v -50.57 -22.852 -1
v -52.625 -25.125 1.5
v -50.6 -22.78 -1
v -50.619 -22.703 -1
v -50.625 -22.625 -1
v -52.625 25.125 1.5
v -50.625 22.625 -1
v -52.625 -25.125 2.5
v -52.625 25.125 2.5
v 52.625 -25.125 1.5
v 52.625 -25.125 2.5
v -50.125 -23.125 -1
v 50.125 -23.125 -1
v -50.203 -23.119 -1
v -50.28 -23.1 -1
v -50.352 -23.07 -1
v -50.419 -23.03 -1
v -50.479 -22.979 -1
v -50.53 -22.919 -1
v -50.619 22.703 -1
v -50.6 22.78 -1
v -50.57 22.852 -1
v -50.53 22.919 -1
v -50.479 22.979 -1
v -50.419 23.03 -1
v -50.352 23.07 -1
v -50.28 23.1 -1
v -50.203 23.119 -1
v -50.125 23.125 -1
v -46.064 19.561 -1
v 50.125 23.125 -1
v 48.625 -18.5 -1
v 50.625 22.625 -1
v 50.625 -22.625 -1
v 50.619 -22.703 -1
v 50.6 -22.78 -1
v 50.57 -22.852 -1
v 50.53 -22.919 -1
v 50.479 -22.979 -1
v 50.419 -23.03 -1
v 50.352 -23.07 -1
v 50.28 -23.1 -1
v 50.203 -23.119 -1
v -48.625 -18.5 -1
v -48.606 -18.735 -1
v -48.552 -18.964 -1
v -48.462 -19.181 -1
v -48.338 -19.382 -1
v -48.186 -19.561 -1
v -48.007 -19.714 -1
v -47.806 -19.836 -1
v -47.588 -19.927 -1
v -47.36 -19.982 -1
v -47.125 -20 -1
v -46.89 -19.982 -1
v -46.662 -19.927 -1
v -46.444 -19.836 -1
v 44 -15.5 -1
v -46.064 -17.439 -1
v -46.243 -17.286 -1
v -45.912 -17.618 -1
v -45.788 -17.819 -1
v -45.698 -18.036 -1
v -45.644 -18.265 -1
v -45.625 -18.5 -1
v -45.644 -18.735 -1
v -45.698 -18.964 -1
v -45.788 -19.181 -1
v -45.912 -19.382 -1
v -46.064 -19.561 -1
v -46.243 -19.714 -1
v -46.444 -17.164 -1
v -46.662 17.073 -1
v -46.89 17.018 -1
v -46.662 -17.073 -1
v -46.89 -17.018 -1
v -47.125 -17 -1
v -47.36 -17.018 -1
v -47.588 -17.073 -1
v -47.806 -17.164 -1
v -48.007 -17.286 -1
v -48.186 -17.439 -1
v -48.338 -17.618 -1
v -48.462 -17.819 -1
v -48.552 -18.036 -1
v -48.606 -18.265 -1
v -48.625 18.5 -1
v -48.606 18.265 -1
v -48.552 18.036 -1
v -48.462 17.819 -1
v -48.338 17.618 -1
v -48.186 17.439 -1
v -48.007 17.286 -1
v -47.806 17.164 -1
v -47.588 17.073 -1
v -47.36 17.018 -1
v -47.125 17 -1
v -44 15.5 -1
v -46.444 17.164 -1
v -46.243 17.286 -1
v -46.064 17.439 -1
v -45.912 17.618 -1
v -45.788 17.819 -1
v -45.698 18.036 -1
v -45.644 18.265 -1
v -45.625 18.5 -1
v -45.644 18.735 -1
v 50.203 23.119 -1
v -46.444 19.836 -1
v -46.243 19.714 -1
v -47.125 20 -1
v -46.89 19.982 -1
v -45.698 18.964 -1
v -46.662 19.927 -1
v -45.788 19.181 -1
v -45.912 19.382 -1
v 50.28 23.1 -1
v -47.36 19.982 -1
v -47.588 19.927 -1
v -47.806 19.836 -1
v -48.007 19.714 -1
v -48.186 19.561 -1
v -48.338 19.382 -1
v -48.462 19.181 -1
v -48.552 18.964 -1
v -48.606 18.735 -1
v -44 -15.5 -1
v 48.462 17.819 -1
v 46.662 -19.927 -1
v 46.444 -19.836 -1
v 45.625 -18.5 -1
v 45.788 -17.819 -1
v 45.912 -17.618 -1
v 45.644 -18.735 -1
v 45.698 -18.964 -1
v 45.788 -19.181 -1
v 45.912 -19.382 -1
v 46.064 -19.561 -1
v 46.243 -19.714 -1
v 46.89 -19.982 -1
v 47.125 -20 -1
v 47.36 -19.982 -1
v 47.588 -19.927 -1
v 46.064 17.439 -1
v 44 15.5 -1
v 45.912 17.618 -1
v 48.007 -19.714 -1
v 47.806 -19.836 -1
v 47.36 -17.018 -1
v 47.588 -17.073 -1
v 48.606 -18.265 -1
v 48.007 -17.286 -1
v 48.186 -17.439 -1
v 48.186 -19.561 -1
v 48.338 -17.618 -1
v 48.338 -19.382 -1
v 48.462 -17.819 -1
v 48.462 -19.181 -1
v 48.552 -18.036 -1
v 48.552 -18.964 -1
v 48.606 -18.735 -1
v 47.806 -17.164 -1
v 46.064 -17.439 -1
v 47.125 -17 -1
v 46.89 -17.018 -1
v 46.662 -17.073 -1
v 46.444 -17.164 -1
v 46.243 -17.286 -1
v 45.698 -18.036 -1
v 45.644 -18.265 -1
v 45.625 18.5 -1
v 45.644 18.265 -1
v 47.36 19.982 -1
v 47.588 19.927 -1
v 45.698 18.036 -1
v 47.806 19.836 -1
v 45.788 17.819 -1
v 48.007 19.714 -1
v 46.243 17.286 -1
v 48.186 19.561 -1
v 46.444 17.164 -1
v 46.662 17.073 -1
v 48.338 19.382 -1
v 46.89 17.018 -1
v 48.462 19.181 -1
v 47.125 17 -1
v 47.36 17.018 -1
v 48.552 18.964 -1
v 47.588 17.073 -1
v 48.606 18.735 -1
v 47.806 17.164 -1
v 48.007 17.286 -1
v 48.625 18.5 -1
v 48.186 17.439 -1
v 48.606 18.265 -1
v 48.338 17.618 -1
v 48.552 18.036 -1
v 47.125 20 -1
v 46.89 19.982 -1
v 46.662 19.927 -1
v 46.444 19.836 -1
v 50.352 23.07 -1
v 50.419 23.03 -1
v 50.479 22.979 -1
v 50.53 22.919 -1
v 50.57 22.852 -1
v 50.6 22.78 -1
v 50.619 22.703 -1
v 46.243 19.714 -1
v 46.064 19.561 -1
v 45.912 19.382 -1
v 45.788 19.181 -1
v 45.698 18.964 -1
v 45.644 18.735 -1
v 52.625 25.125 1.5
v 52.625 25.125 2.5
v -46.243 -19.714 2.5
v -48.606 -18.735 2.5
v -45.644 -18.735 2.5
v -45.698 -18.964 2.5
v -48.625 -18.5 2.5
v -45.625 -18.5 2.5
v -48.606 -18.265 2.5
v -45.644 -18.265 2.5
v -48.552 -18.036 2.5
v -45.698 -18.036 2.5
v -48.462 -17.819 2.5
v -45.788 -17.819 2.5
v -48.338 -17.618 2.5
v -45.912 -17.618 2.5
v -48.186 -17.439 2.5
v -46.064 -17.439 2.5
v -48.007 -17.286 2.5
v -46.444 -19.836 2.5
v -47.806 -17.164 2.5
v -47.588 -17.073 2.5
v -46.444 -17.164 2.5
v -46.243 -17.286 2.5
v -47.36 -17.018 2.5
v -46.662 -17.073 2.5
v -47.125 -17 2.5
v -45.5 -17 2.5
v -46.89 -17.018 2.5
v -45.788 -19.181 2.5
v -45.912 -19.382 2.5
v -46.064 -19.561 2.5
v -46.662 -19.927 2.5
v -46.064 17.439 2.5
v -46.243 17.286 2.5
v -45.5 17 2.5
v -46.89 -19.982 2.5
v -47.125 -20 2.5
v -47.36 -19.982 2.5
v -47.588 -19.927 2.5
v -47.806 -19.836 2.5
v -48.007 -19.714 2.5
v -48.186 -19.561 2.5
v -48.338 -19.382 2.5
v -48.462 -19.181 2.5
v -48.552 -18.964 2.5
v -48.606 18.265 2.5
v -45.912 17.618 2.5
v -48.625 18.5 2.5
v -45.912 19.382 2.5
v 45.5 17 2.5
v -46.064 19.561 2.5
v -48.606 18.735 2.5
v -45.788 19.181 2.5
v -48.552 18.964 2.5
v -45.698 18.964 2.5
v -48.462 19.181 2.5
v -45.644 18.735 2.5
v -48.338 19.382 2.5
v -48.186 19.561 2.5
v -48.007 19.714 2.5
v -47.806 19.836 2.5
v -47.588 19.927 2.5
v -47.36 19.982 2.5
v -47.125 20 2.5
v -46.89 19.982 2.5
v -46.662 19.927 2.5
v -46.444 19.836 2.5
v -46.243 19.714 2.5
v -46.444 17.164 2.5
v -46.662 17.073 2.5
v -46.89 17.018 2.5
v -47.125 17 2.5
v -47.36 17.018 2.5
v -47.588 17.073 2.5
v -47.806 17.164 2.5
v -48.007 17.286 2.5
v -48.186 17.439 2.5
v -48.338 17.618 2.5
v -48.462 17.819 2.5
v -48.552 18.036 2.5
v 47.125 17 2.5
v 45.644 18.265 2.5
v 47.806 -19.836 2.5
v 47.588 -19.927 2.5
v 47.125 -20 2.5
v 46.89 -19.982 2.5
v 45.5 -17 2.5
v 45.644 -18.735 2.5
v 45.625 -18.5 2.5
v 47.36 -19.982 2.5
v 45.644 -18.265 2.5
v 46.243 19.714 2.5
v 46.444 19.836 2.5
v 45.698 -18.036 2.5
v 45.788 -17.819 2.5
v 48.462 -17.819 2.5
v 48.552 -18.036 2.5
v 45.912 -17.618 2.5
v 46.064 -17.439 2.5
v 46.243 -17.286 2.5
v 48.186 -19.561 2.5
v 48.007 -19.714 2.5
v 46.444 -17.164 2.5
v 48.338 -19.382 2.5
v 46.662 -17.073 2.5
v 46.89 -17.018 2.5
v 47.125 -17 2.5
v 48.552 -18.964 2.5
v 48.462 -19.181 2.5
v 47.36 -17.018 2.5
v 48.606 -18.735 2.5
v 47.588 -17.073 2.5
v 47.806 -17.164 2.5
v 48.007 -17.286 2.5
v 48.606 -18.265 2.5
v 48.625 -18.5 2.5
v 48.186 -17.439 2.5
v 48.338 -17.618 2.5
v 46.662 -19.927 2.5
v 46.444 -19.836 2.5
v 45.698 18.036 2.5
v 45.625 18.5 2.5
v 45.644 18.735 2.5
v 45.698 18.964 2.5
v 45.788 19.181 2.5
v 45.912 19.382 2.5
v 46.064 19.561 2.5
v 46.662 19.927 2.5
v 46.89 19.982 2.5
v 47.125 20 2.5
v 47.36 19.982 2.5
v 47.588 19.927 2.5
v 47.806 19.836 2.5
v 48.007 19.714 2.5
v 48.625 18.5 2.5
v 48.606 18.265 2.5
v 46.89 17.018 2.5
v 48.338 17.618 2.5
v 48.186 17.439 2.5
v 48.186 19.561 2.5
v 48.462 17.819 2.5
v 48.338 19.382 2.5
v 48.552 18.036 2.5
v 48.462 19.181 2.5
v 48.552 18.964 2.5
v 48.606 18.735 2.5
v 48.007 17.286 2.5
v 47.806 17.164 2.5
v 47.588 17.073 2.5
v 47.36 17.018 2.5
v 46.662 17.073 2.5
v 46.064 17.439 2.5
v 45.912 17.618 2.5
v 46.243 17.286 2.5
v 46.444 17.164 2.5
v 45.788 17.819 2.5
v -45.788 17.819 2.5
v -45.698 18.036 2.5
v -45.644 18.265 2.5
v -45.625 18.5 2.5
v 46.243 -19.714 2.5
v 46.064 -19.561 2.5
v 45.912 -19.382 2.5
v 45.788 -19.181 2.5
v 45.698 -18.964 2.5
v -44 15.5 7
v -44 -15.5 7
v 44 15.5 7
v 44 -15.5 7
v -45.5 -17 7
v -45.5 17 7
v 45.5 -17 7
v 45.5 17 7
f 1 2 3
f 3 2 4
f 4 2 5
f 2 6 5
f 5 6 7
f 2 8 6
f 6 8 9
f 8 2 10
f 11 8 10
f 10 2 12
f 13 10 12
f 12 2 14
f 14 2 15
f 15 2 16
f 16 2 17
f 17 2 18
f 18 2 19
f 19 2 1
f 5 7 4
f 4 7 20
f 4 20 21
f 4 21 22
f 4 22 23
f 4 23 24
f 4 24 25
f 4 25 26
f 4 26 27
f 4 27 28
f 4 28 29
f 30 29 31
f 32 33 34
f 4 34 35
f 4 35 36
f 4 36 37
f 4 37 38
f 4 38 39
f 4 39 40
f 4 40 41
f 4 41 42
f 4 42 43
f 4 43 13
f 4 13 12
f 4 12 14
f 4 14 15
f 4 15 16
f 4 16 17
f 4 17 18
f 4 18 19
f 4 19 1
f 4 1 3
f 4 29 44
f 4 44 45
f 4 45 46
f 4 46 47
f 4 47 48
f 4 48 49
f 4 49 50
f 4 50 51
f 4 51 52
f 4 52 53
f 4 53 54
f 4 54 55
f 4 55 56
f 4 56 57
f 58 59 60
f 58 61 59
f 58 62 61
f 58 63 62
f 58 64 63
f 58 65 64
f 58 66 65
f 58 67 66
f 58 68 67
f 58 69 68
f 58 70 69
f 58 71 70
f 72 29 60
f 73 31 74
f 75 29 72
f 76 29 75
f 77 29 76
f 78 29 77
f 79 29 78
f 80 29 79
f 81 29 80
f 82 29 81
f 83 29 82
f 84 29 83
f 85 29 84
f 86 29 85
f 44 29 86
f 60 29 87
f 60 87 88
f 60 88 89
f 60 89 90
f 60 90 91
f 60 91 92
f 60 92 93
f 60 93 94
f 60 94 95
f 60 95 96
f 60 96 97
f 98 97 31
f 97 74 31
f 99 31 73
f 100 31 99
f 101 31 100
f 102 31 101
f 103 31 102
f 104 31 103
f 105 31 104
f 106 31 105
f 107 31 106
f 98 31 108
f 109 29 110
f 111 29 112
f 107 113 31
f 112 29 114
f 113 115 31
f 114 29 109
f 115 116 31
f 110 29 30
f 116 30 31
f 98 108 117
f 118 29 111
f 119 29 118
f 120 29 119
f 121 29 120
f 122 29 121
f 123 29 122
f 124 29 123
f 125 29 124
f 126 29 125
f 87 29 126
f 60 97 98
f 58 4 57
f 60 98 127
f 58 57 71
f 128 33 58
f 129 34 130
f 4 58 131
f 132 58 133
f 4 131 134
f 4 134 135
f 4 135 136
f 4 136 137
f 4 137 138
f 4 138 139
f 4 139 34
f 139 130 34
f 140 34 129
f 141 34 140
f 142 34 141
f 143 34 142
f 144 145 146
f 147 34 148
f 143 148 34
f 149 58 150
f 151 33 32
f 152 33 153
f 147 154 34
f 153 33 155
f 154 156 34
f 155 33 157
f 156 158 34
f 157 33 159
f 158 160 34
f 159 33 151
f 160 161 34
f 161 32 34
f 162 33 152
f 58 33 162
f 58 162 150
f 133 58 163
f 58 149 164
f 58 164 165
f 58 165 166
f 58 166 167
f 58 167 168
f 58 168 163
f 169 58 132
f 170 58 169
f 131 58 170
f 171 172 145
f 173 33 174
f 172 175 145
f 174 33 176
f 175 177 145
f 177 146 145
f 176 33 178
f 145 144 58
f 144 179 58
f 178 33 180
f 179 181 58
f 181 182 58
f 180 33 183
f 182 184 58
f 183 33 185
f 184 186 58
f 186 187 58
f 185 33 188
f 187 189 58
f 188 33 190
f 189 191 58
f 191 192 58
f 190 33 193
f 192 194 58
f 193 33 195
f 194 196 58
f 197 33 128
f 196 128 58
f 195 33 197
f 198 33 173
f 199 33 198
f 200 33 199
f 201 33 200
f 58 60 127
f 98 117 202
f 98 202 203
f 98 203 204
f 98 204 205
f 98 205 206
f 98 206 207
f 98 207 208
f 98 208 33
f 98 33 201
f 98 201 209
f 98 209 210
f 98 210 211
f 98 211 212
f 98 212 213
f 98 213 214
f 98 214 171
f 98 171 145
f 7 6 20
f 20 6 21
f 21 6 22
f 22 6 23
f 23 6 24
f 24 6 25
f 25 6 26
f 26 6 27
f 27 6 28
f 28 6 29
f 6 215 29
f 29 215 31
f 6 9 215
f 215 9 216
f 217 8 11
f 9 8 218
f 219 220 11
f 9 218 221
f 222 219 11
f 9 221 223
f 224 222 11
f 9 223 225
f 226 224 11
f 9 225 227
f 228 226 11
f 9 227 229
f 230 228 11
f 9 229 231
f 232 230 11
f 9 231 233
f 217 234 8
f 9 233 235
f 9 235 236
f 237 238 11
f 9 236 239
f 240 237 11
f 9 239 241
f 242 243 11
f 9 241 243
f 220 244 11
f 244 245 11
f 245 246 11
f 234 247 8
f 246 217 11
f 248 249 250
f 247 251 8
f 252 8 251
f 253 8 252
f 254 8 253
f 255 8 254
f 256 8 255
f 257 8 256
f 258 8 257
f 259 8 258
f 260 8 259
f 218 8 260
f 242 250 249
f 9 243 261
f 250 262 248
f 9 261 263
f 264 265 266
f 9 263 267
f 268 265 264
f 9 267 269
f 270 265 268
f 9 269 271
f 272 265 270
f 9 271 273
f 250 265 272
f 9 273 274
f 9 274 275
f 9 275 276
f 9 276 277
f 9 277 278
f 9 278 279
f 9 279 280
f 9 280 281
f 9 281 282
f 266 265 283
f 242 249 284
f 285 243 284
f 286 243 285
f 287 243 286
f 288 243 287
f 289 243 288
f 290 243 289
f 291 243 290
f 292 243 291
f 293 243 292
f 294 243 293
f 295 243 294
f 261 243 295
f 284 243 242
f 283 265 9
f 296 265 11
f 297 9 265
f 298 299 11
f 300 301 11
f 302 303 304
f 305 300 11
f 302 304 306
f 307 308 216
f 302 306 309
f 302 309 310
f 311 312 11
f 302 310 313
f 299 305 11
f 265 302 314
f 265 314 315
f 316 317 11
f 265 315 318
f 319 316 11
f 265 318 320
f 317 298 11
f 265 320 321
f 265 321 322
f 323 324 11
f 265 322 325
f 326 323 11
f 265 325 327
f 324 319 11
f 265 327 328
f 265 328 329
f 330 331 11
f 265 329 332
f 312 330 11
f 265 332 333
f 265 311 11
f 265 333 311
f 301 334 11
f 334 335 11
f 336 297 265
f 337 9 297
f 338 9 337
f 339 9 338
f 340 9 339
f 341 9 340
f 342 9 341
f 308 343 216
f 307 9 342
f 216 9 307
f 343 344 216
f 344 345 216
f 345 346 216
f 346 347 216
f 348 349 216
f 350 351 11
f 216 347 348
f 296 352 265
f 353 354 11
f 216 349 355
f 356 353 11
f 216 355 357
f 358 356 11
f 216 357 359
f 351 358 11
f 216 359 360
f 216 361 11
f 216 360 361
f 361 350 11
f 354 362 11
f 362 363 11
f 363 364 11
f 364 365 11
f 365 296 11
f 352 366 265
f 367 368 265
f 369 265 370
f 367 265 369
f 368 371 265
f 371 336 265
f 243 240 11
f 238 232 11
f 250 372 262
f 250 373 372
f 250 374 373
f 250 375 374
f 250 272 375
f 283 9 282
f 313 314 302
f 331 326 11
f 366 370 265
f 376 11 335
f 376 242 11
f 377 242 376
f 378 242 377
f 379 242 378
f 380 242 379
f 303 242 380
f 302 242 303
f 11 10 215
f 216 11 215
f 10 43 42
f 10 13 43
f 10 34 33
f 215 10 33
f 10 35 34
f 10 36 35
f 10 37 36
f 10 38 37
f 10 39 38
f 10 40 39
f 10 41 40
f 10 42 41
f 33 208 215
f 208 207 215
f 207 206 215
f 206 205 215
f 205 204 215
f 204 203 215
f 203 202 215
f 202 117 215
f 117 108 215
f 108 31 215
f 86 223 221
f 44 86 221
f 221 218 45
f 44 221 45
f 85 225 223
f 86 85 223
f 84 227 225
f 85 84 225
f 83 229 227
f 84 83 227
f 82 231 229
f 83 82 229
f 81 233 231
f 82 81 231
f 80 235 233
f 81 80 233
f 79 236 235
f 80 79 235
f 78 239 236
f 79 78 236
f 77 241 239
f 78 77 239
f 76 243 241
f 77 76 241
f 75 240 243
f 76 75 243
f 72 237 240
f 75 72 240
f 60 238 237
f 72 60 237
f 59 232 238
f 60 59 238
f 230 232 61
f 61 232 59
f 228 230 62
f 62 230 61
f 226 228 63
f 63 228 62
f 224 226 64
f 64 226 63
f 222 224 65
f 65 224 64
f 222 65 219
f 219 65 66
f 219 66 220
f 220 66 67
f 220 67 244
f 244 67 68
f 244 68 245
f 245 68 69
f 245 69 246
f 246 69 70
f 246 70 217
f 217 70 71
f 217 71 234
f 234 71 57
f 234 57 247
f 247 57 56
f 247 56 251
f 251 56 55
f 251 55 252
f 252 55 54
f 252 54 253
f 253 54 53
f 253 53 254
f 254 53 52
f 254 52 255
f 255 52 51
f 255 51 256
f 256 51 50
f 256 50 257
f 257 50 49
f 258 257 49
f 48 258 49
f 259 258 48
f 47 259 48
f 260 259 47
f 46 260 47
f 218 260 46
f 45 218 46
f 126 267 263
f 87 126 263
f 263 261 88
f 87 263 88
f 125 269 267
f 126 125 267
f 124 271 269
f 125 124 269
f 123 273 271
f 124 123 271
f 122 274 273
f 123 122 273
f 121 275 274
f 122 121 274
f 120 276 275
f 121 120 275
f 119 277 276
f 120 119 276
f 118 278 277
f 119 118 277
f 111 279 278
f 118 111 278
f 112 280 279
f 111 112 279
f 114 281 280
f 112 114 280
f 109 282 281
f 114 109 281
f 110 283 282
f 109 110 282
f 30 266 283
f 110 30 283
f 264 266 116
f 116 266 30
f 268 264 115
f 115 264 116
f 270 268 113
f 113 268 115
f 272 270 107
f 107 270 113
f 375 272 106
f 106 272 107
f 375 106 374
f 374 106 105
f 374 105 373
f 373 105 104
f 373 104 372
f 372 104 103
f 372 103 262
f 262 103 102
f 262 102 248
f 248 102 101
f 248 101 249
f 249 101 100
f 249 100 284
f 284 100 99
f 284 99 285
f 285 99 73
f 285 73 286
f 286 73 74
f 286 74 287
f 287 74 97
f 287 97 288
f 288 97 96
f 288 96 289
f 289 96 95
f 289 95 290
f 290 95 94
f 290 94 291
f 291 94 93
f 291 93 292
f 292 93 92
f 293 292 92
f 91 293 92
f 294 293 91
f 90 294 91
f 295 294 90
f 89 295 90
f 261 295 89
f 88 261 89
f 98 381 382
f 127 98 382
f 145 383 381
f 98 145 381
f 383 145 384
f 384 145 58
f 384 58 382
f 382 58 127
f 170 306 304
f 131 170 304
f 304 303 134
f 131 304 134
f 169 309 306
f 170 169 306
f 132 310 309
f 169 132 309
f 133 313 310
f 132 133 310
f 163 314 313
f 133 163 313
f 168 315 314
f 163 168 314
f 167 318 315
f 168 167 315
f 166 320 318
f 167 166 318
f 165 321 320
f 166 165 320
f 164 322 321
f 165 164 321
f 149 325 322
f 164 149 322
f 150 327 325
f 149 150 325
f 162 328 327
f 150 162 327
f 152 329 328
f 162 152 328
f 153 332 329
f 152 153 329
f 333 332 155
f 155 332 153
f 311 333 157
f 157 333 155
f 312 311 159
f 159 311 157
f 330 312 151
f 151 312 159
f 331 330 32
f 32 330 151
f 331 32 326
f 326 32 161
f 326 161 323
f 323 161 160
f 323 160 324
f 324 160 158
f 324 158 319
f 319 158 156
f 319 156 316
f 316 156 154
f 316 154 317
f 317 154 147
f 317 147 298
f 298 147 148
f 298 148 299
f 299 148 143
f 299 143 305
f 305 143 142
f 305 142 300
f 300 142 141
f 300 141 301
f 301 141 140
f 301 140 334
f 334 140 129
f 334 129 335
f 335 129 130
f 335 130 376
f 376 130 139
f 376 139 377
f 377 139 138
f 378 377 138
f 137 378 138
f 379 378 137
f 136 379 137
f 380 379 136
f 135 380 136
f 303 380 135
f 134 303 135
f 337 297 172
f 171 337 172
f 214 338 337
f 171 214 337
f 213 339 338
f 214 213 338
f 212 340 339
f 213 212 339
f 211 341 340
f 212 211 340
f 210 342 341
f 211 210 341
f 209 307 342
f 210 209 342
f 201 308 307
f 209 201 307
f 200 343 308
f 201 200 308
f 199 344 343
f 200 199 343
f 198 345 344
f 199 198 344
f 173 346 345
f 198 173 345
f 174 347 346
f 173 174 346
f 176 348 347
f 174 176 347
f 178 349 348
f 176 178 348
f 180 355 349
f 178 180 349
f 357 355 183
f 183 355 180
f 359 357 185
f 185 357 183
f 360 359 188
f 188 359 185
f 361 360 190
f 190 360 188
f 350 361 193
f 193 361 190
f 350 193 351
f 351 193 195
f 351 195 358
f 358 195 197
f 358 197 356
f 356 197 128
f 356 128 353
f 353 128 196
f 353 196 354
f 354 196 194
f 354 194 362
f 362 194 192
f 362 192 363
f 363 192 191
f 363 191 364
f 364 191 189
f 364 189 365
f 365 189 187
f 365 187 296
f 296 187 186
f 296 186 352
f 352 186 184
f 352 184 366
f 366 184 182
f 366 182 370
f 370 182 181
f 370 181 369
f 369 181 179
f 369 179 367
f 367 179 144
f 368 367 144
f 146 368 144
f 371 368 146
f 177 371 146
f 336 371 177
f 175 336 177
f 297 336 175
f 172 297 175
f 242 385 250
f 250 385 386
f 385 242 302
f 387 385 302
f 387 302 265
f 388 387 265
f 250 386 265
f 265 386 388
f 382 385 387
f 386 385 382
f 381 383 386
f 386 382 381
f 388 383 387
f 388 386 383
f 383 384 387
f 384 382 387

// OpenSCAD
//****************************************************************
//*  Name    : LCD Bezel                                         *
//*  Author  : Robert Joseph Korn                                *
//*  Notice  : Copyright (c) 2015 Open Valley Consulting Corp    *
//*          : All Rights Reserved                               *
//*  Date    : 5/22/15                                           *
//*  Version : 1.0                                               *
//*  Notes   :                                                   *
//*          :                                                   *
//****************************************************************

$fn=40;

width=100.25;
height=45.25;
offset=5;
thickness=2;
winwidth=88;
winheight=31;
winthickness=3;
holewidth=94.25;
holeheight=37;
holesize=3;

difference(){

	union(){

		hull(){
		
			minkowski(){
				cube([width,height,1],center=true);
				cylinder(d=1,h=1,center=true);
			}
		
			translate([0,0,thickness]) cube([width + offset,height + offset,1],center=true);
		}

		translate([0,0,3]) cube([winwidth + winthickness,winheight + winthickness,8],center=true);

	}

		cube([winwidth,winheight,20],center=true);

		translate([holewidth/2,holeheight/2,0]) cylinder(d=holesize,h=20,center=true);
		translate([-holewidth/2,holeheight/2,0]) cylinder(d=holesize,h=20,center=true);
		translate([holewidth/2,-holeheight/2,0]) cylinder(d=holesize,h=20,center=true);
		translate([-holewidth/2,-holeheight/2,0]) cylinder(d=holesize,h=20,center=true);

}
